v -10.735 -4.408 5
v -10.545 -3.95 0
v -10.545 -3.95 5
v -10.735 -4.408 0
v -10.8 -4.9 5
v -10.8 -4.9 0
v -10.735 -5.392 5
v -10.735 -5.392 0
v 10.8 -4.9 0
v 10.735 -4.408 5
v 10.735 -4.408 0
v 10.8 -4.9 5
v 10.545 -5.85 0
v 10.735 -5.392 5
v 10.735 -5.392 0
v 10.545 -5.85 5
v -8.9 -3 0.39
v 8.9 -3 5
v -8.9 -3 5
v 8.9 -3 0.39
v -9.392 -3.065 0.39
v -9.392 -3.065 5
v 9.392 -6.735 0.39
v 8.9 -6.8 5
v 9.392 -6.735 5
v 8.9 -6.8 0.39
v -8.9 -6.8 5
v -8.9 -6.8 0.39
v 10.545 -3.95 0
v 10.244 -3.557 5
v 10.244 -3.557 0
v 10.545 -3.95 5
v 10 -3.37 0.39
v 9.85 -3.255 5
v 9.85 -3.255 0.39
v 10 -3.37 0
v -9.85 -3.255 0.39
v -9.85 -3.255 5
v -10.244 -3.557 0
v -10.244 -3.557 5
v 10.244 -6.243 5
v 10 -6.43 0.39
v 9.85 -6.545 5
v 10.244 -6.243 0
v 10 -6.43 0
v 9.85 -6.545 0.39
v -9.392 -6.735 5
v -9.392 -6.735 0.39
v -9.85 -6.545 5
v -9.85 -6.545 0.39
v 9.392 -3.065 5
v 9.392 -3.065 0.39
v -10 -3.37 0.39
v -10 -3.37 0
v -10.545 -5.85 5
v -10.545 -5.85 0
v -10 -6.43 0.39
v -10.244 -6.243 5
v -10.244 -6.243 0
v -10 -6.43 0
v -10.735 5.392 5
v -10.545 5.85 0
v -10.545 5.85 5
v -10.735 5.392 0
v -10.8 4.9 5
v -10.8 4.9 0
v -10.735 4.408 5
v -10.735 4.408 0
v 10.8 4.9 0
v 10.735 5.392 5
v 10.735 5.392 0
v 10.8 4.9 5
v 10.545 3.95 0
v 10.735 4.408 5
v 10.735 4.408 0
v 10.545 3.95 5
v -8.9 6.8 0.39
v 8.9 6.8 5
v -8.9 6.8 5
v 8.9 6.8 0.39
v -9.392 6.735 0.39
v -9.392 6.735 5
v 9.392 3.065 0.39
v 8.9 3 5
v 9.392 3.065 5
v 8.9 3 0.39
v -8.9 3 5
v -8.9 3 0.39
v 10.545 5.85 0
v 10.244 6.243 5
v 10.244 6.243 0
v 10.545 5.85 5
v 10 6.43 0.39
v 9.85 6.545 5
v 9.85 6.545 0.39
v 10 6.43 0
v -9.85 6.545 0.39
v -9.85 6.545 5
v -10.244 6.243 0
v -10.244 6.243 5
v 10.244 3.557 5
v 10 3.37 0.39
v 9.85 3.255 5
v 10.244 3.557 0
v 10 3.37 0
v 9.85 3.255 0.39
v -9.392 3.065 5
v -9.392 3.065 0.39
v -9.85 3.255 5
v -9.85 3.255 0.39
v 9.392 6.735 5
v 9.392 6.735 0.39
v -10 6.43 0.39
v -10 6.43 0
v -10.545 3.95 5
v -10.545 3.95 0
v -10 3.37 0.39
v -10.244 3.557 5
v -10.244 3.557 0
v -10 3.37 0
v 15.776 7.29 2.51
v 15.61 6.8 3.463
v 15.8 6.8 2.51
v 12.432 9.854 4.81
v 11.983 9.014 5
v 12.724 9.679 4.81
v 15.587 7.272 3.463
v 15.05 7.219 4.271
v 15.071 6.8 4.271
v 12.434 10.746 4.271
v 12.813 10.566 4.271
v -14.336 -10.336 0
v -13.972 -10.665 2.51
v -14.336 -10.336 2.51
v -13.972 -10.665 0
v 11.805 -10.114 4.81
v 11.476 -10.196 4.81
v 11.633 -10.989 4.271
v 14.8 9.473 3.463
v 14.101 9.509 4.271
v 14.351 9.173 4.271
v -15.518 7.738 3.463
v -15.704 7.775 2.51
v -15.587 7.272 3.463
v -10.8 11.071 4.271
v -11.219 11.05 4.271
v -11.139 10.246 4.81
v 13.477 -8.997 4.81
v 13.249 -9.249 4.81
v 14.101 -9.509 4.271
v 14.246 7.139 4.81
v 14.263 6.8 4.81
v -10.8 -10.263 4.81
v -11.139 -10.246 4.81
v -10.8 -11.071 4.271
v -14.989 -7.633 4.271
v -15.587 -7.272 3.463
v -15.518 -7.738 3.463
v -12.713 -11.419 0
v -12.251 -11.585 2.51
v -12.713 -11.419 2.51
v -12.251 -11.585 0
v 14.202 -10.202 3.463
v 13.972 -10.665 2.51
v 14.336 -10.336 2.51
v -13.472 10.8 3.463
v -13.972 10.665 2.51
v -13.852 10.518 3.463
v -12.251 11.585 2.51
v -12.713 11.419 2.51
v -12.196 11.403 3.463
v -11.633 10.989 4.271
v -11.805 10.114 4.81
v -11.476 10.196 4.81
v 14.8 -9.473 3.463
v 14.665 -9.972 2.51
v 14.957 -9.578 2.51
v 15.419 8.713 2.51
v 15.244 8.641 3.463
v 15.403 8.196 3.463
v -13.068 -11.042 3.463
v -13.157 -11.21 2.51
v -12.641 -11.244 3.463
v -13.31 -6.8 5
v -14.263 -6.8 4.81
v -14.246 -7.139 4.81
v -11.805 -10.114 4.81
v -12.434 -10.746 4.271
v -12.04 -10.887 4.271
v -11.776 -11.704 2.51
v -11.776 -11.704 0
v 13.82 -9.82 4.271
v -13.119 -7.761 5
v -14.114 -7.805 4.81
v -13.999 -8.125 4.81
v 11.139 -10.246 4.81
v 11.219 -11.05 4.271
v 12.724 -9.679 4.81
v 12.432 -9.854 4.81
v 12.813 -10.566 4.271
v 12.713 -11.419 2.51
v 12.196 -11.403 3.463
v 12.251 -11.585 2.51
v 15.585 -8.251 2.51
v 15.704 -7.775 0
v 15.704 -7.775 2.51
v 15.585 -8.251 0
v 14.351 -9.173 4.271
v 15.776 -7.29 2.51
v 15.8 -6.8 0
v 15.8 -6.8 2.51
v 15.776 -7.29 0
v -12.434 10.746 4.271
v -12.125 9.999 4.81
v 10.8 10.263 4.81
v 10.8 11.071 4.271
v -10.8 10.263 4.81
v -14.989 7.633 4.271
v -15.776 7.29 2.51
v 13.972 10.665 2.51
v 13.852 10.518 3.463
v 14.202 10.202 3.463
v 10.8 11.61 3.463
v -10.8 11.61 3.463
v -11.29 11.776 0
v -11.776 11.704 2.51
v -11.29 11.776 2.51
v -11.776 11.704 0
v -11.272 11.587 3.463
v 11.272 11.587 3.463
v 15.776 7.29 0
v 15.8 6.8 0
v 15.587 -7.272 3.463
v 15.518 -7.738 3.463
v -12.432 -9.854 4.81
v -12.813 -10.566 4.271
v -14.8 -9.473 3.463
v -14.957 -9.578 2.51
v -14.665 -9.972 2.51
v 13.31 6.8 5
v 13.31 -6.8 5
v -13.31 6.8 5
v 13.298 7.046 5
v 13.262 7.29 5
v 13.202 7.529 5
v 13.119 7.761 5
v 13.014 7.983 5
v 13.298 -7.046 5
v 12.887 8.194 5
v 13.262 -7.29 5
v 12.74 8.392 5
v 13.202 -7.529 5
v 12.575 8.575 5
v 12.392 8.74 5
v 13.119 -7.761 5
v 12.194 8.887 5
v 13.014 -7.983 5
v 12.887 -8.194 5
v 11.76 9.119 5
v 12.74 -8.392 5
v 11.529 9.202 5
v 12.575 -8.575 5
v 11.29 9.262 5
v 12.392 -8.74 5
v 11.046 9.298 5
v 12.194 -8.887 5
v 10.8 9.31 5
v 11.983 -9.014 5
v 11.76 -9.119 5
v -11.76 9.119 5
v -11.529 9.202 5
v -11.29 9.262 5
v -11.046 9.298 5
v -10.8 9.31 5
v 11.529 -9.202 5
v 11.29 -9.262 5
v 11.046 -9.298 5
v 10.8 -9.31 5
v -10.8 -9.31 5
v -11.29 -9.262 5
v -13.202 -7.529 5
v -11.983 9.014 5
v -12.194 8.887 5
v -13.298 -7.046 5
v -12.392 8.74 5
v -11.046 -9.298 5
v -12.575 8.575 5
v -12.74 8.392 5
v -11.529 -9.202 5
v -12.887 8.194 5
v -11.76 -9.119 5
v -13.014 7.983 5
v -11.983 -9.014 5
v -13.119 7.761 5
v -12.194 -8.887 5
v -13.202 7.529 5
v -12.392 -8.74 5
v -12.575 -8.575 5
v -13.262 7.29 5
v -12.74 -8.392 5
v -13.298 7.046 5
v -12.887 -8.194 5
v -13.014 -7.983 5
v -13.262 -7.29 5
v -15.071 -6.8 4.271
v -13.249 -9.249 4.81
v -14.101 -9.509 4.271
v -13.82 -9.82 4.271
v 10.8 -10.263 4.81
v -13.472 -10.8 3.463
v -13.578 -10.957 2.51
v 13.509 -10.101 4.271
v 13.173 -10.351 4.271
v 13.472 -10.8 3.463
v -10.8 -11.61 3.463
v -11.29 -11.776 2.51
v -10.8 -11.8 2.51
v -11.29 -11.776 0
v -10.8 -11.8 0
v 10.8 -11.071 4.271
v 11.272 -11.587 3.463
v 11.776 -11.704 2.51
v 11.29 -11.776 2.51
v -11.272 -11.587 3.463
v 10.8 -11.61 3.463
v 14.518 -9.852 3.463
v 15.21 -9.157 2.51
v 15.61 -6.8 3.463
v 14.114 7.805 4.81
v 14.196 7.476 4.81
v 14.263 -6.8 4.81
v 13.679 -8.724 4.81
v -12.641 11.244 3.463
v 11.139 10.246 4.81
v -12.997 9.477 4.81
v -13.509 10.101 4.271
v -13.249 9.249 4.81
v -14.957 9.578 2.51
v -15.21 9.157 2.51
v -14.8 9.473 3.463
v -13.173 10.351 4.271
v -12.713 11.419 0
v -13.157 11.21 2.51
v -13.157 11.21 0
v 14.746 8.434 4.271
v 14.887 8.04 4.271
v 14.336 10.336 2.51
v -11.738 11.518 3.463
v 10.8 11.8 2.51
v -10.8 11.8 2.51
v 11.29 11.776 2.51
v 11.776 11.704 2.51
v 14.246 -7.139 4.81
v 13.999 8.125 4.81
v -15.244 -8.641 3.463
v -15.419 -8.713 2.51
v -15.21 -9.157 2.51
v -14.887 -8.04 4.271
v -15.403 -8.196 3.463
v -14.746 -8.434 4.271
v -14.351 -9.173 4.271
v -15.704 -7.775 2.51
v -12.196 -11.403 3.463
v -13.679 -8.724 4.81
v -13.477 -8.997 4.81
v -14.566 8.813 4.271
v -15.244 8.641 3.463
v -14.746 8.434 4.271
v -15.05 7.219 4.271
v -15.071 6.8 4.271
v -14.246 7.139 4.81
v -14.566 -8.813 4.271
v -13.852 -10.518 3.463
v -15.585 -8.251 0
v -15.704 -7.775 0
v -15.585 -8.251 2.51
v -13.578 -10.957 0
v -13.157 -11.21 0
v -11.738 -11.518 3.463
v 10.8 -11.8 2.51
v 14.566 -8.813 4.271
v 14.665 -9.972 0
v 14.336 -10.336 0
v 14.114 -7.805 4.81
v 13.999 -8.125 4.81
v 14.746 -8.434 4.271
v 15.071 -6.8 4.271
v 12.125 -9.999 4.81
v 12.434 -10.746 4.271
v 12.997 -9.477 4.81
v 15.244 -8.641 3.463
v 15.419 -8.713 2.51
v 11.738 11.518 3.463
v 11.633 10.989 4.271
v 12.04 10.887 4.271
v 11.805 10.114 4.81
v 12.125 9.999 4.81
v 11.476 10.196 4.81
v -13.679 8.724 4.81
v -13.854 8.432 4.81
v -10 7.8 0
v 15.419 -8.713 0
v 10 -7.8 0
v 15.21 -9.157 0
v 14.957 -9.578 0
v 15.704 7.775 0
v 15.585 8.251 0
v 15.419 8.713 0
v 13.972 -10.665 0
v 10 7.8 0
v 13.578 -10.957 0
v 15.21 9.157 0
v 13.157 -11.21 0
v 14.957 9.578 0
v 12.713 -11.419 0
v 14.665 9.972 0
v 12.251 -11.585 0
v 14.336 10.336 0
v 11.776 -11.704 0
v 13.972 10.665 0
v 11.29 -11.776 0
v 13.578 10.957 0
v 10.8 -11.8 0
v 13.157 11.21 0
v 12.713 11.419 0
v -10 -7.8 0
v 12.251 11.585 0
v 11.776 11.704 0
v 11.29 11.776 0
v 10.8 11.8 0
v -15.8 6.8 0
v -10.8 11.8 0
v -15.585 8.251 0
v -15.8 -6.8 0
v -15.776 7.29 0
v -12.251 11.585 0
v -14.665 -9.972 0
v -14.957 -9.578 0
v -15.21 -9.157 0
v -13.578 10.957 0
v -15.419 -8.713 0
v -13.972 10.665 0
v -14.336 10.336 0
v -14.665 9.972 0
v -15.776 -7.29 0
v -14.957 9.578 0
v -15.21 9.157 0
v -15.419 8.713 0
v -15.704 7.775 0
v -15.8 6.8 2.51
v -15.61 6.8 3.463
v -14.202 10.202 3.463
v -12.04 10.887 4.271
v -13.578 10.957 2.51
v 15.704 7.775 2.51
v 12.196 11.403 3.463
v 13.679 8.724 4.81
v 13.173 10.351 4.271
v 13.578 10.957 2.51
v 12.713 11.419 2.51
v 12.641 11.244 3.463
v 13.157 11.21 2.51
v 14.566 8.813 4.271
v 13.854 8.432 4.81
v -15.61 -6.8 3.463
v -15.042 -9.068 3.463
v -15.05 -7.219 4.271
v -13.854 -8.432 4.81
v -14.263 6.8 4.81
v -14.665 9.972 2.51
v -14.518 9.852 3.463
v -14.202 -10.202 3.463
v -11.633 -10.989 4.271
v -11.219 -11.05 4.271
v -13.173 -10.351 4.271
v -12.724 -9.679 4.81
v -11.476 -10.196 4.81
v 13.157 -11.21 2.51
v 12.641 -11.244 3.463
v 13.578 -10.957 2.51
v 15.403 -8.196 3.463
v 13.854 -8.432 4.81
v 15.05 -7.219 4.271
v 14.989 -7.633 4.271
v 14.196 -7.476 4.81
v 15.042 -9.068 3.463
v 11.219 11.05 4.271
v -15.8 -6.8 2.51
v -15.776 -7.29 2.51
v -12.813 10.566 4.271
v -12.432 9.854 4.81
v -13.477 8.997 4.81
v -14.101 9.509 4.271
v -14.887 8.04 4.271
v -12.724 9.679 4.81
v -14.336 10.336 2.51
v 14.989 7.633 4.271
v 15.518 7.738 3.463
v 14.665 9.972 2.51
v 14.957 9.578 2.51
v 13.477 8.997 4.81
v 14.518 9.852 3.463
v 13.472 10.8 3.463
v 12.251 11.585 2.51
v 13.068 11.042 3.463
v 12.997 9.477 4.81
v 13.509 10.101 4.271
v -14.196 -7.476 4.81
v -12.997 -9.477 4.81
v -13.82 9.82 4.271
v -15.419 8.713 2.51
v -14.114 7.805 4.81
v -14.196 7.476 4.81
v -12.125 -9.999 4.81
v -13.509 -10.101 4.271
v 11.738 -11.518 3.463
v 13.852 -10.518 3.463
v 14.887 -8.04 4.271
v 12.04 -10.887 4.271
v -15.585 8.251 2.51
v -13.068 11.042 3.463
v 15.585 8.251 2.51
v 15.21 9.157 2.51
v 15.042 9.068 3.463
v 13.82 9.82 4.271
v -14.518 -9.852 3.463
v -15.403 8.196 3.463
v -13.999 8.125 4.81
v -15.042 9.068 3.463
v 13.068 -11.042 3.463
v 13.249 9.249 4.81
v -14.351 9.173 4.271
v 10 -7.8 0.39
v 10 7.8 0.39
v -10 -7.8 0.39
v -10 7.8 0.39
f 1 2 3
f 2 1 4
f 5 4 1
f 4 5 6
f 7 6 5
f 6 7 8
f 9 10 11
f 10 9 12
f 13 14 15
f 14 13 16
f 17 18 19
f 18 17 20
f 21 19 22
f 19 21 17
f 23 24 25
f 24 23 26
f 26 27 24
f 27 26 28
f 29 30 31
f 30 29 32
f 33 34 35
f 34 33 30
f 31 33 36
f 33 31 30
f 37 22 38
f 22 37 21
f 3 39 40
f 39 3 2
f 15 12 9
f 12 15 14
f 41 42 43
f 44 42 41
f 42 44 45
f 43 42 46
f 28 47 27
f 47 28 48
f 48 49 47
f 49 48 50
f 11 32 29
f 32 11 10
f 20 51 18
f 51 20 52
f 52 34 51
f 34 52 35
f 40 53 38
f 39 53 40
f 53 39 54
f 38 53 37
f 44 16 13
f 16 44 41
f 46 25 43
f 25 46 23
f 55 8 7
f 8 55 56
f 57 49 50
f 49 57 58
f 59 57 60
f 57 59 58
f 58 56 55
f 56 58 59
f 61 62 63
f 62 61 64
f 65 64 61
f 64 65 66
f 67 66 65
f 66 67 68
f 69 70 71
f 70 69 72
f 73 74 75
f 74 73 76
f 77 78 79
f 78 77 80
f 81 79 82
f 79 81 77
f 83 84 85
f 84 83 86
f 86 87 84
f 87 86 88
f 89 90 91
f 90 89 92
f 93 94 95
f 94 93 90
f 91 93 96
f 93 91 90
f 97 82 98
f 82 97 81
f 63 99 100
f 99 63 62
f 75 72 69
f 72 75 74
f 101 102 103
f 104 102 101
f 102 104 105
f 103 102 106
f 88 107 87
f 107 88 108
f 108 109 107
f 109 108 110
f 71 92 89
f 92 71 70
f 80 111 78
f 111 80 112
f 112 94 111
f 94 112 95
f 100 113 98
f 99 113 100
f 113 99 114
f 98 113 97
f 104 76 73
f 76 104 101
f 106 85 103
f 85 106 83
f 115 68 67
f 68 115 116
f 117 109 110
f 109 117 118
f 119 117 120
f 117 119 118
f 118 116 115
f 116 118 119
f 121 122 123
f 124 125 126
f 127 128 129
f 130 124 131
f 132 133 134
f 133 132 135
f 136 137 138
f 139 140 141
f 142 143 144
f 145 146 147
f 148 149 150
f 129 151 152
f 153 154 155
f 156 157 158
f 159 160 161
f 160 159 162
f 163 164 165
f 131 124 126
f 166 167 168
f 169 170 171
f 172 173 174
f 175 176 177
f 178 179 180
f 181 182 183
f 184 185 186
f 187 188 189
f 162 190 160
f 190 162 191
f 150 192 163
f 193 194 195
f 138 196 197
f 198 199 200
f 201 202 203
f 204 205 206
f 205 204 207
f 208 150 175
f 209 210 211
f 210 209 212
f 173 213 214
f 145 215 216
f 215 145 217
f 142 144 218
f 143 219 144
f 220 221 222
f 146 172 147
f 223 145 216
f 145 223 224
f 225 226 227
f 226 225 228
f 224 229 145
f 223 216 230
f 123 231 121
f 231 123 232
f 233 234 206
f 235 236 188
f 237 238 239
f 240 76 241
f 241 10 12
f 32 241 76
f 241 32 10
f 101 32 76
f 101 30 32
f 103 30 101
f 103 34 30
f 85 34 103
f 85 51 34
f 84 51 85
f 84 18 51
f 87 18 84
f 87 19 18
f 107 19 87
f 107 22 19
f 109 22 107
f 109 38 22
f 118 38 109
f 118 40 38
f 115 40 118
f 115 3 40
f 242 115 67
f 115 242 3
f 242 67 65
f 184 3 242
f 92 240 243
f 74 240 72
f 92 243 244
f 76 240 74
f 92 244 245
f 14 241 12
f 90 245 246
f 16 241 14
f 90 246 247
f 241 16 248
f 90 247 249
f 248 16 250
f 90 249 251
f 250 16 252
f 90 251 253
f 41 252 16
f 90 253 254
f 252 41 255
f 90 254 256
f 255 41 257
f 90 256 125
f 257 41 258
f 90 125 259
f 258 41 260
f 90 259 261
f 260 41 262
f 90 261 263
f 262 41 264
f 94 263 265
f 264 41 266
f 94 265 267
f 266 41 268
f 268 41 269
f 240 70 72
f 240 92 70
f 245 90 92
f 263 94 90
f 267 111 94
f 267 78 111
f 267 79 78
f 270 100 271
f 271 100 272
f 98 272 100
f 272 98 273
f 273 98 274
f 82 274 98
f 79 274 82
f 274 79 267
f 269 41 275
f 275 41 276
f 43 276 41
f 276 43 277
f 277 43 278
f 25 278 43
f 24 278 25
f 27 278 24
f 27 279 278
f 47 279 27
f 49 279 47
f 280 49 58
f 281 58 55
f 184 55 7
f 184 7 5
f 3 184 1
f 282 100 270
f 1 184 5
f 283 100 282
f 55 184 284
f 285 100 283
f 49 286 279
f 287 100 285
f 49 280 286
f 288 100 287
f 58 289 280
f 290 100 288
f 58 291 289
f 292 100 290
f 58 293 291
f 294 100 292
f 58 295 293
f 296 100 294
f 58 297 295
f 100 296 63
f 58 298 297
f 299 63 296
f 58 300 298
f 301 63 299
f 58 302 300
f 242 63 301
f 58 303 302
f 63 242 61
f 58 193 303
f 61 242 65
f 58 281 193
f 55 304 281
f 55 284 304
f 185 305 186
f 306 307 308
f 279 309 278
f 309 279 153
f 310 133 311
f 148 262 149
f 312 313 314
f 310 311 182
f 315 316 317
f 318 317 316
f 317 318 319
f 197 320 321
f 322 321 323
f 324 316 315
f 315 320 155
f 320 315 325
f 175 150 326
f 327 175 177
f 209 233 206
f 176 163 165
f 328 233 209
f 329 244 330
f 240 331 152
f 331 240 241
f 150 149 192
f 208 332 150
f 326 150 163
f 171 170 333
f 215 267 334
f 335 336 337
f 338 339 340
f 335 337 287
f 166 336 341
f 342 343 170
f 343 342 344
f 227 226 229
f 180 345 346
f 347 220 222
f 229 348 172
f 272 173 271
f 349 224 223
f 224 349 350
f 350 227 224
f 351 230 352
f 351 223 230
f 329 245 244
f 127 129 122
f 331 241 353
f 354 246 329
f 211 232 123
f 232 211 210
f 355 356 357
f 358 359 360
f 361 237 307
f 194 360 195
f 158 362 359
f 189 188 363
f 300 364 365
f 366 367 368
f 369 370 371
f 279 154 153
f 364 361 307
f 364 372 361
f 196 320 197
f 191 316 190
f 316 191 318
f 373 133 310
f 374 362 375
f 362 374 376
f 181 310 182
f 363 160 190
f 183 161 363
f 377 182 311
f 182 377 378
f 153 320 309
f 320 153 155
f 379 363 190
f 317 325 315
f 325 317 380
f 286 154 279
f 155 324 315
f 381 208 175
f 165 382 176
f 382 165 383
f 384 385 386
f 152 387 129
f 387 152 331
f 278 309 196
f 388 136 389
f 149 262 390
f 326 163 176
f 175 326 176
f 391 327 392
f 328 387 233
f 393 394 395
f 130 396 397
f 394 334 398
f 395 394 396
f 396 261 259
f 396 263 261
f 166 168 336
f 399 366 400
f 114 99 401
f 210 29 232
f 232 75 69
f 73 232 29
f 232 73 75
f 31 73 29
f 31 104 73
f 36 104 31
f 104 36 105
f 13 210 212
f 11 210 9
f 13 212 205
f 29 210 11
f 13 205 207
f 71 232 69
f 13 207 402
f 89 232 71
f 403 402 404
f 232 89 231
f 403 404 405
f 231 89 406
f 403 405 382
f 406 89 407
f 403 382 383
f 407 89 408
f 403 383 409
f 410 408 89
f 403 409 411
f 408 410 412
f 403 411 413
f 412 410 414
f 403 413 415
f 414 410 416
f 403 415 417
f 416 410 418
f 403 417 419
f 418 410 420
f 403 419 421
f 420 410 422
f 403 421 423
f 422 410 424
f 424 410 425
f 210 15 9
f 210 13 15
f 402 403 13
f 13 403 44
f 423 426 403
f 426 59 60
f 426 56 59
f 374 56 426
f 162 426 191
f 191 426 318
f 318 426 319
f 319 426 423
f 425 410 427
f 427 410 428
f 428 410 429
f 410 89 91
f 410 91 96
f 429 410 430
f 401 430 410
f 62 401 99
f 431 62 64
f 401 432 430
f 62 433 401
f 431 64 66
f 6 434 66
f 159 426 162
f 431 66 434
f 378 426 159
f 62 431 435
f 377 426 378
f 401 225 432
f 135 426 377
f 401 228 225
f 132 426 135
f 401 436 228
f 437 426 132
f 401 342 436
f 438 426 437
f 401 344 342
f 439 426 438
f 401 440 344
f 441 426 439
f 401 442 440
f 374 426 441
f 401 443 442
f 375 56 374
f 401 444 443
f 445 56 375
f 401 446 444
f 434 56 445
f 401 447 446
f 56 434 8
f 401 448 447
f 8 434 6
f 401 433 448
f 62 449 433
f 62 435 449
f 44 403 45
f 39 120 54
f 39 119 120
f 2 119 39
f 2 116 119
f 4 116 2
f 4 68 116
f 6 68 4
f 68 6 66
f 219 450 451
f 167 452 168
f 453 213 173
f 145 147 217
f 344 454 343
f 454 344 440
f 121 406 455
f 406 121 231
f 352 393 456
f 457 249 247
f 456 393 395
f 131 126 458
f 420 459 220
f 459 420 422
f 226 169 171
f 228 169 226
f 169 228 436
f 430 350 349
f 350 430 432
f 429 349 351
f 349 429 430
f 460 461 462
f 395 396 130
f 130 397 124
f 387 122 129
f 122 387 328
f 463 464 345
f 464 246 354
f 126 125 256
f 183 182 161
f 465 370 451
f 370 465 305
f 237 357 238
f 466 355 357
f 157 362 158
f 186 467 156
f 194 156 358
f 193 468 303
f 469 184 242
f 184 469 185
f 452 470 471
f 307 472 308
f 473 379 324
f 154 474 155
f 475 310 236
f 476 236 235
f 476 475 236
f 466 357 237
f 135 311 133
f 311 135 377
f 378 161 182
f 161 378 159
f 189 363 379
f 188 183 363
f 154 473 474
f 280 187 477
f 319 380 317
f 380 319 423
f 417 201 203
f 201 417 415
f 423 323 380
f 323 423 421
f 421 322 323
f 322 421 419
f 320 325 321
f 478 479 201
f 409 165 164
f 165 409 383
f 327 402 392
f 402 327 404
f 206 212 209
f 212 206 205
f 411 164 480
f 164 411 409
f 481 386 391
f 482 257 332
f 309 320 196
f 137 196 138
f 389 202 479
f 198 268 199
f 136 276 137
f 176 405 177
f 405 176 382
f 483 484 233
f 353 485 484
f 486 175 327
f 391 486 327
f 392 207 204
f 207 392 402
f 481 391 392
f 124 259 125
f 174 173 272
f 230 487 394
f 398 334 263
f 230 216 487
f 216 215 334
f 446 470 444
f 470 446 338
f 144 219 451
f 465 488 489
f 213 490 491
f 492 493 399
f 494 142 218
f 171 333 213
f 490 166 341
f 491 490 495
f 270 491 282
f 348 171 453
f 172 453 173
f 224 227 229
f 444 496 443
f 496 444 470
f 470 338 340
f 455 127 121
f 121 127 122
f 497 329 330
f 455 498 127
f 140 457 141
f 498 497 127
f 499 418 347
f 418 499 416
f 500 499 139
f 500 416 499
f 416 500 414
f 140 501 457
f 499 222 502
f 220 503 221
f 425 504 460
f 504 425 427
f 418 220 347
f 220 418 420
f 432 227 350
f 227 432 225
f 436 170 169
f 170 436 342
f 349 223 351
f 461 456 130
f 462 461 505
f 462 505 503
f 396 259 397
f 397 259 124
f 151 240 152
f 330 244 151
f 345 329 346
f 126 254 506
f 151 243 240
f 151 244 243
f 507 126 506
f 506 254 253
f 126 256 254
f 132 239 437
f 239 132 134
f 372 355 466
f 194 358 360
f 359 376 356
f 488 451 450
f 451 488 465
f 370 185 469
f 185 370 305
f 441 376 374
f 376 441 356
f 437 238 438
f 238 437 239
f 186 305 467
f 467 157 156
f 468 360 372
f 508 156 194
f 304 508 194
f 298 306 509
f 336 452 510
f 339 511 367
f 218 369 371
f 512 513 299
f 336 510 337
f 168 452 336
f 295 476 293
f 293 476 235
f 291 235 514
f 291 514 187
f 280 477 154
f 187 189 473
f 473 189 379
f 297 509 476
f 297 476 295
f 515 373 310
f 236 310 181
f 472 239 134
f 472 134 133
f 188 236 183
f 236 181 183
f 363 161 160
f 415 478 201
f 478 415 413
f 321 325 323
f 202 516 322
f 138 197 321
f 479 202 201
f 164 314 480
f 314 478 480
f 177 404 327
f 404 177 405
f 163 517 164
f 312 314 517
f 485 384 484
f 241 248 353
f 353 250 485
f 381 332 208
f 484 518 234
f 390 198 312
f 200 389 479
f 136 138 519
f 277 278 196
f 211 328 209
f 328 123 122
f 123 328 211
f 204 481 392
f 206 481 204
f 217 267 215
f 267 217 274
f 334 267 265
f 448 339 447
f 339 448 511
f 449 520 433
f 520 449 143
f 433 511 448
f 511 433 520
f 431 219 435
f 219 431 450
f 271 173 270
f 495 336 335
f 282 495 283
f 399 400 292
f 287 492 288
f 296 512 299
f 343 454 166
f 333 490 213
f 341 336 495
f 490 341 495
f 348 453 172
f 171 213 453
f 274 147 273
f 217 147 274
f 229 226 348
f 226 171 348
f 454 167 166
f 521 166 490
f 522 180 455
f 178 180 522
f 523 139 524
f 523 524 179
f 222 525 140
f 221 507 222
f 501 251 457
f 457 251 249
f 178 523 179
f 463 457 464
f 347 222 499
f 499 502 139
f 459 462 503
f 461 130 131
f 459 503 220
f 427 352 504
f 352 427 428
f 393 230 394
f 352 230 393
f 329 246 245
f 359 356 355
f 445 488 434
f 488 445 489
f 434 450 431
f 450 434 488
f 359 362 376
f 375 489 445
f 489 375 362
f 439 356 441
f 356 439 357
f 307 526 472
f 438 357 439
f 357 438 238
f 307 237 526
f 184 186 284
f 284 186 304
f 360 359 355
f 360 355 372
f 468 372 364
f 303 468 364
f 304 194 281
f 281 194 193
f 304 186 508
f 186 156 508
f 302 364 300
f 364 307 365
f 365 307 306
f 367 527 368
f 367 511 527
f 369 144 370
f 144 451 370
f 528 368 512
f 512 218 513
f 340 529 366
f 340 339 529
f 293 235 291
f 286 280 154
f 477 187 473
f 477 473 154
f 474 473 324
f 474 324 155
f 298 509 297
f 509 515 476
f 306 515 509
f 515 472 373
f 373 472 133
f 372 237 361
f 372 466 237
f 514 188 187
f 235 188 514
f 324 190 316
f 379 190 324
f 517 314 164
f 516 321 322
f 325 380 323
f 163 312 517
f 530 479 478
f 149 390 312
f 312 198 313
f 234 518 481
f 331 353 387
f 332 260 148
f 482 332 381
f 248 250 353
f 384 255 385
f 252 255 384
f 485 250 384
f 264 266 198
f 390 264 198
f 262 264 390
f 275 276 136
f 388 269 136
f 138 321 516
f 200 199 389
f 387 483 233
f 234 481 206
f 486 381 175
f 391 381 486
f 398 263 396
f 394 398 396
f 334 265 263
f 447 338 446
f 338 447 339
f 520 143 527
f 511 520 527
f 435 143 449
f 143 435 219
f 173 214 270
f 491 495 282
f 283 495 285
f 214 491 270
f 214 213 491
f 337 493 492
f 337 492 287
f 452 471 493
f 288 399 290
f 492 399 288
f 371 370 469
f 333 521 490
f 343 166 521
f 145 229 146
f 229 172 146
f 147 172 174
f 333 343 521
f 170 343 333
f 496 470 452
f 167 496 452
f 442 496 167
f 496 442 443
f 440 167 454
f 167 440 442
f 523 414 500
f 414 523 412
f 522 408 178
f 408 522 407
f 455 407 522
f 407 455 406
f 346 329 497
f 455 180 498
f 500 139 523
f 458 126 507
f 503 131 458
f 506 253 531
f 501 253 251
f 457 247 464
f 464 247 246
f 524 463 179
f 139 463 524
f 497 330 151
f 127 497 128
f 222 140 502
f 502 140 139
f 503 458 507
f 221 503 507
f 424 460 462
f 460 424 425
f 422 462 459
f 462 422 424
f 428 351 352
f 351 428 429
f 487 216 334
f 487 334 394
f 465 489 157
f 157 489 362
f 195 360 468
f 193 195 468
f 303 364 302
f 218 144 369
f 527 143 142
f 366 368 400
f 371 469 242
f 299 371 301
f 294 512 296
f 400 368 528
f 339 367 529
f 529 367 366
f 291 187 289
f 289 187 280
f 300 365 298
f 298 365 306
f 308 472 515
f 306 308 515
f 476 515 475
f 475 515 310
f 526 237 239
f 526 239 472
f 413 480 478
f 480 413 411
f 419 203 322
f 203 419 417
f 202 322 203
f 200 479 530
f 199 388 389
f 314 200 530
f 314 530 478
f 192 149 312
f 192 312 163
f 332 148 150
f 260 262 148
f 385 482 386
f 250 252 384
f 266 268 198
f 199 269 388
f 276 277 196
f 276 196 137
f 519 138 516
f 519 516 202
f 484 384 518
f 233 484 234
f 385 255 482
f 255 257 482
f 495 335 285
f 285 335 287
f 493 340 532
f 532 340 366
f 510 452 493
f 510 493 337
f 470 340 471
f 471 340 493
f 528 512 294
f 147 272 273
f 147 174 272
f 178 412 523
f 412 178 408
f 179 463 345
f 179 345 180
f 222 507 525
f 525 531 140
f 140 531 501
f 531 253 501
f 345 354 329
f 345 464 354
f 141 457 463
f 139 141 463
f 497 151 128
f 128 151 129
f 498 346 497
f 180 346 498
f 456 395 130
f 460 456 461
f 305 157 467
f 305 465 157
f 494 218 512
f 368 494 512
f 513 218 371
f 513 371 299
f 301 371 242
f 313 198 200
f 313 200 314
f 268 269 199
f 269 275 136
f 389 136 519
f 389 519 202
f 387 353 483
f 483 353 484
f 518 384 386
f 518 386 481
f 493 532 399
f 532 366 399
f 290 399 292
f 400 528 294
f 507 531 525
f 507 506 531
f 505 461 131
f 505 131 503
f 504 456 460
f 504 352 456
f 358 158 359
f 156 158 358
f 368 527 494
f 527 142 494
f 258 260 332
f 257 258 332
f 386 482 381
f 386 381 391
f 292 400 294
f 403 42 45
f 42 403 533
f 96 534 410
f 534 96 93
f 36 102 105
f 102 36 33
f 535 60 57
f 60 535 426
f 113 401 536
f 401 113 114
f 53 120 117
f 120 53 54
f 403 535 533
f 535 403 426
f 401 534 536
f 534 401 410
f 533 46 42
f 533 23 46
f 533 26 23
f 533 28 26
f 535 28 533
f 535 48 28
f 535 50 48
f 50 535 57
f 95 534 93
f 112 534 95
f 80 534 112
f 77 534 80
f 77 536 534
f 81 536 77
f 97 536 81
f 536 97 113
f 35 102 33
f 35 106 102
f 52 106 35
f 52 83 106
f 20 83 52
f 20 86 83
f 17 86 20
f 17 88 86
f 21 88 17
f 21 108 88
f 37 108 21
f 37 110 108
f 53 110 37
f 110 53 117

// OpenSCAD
// SPDX-License-Identifier: CERN-OHL-P-2.0
// Copyright 2026 CLSOFTLAB (씨엘소프트랩), Dr. Lee Il-guk (이일국)
// Open Walking Safety Helmet (OWSH) - strap_anchor (spec §10): low-profile buckle for a
// 20 mm hook-and-loop strap. Sits on the shell on a removable Dual Lock pad (or loops through
// a vent) so modules can be strapped on and still break away under impact (P2). Qty 4.
// Print: PETG, flat side on the bed (as exported), no supports.

include <lib/owsh_common.scad>

// ----------------------------------------------------------------- parameters
anchor_t      = 5.0;     // thickness (top edge radius = anchor_t / 2)
bar_w         = 5.0;     // width of the bars around the slots
slot_gap      = 6.0;     // centre bar between the two strap slots
dual_lock_recess = [20, 0.4]; // shallow square recess on the underside for the Dual Lock pad

anchor_len = 2 * (strap_slot[1] + 2 * clr) + slot_gap + 2 * bar_w;
anchor_w   = strap_slot[0] + 2 * clr + 2 * bar_w;

module strap_anchor() {
    difference() {
        rounded_box([anchor_w, anchor_len, anchor_t], r = anchor_t / 2, r_plan = 5);
        for (s = [-1, 1]) translate([0, s * (slot_gap / 2 + (strap_slot[1] + 2 * clr) / 2), anchor_t / 2]) strap_slot_cut(anchor_t * 3, "x");
        translate([0, 0, -eps]) linear_extrude(dual_lock_recess[1]) square([dual_lock_recess[0], anchor_len - 2 * bar_w + 2], center = true);
    }
}

strap_anchor();
